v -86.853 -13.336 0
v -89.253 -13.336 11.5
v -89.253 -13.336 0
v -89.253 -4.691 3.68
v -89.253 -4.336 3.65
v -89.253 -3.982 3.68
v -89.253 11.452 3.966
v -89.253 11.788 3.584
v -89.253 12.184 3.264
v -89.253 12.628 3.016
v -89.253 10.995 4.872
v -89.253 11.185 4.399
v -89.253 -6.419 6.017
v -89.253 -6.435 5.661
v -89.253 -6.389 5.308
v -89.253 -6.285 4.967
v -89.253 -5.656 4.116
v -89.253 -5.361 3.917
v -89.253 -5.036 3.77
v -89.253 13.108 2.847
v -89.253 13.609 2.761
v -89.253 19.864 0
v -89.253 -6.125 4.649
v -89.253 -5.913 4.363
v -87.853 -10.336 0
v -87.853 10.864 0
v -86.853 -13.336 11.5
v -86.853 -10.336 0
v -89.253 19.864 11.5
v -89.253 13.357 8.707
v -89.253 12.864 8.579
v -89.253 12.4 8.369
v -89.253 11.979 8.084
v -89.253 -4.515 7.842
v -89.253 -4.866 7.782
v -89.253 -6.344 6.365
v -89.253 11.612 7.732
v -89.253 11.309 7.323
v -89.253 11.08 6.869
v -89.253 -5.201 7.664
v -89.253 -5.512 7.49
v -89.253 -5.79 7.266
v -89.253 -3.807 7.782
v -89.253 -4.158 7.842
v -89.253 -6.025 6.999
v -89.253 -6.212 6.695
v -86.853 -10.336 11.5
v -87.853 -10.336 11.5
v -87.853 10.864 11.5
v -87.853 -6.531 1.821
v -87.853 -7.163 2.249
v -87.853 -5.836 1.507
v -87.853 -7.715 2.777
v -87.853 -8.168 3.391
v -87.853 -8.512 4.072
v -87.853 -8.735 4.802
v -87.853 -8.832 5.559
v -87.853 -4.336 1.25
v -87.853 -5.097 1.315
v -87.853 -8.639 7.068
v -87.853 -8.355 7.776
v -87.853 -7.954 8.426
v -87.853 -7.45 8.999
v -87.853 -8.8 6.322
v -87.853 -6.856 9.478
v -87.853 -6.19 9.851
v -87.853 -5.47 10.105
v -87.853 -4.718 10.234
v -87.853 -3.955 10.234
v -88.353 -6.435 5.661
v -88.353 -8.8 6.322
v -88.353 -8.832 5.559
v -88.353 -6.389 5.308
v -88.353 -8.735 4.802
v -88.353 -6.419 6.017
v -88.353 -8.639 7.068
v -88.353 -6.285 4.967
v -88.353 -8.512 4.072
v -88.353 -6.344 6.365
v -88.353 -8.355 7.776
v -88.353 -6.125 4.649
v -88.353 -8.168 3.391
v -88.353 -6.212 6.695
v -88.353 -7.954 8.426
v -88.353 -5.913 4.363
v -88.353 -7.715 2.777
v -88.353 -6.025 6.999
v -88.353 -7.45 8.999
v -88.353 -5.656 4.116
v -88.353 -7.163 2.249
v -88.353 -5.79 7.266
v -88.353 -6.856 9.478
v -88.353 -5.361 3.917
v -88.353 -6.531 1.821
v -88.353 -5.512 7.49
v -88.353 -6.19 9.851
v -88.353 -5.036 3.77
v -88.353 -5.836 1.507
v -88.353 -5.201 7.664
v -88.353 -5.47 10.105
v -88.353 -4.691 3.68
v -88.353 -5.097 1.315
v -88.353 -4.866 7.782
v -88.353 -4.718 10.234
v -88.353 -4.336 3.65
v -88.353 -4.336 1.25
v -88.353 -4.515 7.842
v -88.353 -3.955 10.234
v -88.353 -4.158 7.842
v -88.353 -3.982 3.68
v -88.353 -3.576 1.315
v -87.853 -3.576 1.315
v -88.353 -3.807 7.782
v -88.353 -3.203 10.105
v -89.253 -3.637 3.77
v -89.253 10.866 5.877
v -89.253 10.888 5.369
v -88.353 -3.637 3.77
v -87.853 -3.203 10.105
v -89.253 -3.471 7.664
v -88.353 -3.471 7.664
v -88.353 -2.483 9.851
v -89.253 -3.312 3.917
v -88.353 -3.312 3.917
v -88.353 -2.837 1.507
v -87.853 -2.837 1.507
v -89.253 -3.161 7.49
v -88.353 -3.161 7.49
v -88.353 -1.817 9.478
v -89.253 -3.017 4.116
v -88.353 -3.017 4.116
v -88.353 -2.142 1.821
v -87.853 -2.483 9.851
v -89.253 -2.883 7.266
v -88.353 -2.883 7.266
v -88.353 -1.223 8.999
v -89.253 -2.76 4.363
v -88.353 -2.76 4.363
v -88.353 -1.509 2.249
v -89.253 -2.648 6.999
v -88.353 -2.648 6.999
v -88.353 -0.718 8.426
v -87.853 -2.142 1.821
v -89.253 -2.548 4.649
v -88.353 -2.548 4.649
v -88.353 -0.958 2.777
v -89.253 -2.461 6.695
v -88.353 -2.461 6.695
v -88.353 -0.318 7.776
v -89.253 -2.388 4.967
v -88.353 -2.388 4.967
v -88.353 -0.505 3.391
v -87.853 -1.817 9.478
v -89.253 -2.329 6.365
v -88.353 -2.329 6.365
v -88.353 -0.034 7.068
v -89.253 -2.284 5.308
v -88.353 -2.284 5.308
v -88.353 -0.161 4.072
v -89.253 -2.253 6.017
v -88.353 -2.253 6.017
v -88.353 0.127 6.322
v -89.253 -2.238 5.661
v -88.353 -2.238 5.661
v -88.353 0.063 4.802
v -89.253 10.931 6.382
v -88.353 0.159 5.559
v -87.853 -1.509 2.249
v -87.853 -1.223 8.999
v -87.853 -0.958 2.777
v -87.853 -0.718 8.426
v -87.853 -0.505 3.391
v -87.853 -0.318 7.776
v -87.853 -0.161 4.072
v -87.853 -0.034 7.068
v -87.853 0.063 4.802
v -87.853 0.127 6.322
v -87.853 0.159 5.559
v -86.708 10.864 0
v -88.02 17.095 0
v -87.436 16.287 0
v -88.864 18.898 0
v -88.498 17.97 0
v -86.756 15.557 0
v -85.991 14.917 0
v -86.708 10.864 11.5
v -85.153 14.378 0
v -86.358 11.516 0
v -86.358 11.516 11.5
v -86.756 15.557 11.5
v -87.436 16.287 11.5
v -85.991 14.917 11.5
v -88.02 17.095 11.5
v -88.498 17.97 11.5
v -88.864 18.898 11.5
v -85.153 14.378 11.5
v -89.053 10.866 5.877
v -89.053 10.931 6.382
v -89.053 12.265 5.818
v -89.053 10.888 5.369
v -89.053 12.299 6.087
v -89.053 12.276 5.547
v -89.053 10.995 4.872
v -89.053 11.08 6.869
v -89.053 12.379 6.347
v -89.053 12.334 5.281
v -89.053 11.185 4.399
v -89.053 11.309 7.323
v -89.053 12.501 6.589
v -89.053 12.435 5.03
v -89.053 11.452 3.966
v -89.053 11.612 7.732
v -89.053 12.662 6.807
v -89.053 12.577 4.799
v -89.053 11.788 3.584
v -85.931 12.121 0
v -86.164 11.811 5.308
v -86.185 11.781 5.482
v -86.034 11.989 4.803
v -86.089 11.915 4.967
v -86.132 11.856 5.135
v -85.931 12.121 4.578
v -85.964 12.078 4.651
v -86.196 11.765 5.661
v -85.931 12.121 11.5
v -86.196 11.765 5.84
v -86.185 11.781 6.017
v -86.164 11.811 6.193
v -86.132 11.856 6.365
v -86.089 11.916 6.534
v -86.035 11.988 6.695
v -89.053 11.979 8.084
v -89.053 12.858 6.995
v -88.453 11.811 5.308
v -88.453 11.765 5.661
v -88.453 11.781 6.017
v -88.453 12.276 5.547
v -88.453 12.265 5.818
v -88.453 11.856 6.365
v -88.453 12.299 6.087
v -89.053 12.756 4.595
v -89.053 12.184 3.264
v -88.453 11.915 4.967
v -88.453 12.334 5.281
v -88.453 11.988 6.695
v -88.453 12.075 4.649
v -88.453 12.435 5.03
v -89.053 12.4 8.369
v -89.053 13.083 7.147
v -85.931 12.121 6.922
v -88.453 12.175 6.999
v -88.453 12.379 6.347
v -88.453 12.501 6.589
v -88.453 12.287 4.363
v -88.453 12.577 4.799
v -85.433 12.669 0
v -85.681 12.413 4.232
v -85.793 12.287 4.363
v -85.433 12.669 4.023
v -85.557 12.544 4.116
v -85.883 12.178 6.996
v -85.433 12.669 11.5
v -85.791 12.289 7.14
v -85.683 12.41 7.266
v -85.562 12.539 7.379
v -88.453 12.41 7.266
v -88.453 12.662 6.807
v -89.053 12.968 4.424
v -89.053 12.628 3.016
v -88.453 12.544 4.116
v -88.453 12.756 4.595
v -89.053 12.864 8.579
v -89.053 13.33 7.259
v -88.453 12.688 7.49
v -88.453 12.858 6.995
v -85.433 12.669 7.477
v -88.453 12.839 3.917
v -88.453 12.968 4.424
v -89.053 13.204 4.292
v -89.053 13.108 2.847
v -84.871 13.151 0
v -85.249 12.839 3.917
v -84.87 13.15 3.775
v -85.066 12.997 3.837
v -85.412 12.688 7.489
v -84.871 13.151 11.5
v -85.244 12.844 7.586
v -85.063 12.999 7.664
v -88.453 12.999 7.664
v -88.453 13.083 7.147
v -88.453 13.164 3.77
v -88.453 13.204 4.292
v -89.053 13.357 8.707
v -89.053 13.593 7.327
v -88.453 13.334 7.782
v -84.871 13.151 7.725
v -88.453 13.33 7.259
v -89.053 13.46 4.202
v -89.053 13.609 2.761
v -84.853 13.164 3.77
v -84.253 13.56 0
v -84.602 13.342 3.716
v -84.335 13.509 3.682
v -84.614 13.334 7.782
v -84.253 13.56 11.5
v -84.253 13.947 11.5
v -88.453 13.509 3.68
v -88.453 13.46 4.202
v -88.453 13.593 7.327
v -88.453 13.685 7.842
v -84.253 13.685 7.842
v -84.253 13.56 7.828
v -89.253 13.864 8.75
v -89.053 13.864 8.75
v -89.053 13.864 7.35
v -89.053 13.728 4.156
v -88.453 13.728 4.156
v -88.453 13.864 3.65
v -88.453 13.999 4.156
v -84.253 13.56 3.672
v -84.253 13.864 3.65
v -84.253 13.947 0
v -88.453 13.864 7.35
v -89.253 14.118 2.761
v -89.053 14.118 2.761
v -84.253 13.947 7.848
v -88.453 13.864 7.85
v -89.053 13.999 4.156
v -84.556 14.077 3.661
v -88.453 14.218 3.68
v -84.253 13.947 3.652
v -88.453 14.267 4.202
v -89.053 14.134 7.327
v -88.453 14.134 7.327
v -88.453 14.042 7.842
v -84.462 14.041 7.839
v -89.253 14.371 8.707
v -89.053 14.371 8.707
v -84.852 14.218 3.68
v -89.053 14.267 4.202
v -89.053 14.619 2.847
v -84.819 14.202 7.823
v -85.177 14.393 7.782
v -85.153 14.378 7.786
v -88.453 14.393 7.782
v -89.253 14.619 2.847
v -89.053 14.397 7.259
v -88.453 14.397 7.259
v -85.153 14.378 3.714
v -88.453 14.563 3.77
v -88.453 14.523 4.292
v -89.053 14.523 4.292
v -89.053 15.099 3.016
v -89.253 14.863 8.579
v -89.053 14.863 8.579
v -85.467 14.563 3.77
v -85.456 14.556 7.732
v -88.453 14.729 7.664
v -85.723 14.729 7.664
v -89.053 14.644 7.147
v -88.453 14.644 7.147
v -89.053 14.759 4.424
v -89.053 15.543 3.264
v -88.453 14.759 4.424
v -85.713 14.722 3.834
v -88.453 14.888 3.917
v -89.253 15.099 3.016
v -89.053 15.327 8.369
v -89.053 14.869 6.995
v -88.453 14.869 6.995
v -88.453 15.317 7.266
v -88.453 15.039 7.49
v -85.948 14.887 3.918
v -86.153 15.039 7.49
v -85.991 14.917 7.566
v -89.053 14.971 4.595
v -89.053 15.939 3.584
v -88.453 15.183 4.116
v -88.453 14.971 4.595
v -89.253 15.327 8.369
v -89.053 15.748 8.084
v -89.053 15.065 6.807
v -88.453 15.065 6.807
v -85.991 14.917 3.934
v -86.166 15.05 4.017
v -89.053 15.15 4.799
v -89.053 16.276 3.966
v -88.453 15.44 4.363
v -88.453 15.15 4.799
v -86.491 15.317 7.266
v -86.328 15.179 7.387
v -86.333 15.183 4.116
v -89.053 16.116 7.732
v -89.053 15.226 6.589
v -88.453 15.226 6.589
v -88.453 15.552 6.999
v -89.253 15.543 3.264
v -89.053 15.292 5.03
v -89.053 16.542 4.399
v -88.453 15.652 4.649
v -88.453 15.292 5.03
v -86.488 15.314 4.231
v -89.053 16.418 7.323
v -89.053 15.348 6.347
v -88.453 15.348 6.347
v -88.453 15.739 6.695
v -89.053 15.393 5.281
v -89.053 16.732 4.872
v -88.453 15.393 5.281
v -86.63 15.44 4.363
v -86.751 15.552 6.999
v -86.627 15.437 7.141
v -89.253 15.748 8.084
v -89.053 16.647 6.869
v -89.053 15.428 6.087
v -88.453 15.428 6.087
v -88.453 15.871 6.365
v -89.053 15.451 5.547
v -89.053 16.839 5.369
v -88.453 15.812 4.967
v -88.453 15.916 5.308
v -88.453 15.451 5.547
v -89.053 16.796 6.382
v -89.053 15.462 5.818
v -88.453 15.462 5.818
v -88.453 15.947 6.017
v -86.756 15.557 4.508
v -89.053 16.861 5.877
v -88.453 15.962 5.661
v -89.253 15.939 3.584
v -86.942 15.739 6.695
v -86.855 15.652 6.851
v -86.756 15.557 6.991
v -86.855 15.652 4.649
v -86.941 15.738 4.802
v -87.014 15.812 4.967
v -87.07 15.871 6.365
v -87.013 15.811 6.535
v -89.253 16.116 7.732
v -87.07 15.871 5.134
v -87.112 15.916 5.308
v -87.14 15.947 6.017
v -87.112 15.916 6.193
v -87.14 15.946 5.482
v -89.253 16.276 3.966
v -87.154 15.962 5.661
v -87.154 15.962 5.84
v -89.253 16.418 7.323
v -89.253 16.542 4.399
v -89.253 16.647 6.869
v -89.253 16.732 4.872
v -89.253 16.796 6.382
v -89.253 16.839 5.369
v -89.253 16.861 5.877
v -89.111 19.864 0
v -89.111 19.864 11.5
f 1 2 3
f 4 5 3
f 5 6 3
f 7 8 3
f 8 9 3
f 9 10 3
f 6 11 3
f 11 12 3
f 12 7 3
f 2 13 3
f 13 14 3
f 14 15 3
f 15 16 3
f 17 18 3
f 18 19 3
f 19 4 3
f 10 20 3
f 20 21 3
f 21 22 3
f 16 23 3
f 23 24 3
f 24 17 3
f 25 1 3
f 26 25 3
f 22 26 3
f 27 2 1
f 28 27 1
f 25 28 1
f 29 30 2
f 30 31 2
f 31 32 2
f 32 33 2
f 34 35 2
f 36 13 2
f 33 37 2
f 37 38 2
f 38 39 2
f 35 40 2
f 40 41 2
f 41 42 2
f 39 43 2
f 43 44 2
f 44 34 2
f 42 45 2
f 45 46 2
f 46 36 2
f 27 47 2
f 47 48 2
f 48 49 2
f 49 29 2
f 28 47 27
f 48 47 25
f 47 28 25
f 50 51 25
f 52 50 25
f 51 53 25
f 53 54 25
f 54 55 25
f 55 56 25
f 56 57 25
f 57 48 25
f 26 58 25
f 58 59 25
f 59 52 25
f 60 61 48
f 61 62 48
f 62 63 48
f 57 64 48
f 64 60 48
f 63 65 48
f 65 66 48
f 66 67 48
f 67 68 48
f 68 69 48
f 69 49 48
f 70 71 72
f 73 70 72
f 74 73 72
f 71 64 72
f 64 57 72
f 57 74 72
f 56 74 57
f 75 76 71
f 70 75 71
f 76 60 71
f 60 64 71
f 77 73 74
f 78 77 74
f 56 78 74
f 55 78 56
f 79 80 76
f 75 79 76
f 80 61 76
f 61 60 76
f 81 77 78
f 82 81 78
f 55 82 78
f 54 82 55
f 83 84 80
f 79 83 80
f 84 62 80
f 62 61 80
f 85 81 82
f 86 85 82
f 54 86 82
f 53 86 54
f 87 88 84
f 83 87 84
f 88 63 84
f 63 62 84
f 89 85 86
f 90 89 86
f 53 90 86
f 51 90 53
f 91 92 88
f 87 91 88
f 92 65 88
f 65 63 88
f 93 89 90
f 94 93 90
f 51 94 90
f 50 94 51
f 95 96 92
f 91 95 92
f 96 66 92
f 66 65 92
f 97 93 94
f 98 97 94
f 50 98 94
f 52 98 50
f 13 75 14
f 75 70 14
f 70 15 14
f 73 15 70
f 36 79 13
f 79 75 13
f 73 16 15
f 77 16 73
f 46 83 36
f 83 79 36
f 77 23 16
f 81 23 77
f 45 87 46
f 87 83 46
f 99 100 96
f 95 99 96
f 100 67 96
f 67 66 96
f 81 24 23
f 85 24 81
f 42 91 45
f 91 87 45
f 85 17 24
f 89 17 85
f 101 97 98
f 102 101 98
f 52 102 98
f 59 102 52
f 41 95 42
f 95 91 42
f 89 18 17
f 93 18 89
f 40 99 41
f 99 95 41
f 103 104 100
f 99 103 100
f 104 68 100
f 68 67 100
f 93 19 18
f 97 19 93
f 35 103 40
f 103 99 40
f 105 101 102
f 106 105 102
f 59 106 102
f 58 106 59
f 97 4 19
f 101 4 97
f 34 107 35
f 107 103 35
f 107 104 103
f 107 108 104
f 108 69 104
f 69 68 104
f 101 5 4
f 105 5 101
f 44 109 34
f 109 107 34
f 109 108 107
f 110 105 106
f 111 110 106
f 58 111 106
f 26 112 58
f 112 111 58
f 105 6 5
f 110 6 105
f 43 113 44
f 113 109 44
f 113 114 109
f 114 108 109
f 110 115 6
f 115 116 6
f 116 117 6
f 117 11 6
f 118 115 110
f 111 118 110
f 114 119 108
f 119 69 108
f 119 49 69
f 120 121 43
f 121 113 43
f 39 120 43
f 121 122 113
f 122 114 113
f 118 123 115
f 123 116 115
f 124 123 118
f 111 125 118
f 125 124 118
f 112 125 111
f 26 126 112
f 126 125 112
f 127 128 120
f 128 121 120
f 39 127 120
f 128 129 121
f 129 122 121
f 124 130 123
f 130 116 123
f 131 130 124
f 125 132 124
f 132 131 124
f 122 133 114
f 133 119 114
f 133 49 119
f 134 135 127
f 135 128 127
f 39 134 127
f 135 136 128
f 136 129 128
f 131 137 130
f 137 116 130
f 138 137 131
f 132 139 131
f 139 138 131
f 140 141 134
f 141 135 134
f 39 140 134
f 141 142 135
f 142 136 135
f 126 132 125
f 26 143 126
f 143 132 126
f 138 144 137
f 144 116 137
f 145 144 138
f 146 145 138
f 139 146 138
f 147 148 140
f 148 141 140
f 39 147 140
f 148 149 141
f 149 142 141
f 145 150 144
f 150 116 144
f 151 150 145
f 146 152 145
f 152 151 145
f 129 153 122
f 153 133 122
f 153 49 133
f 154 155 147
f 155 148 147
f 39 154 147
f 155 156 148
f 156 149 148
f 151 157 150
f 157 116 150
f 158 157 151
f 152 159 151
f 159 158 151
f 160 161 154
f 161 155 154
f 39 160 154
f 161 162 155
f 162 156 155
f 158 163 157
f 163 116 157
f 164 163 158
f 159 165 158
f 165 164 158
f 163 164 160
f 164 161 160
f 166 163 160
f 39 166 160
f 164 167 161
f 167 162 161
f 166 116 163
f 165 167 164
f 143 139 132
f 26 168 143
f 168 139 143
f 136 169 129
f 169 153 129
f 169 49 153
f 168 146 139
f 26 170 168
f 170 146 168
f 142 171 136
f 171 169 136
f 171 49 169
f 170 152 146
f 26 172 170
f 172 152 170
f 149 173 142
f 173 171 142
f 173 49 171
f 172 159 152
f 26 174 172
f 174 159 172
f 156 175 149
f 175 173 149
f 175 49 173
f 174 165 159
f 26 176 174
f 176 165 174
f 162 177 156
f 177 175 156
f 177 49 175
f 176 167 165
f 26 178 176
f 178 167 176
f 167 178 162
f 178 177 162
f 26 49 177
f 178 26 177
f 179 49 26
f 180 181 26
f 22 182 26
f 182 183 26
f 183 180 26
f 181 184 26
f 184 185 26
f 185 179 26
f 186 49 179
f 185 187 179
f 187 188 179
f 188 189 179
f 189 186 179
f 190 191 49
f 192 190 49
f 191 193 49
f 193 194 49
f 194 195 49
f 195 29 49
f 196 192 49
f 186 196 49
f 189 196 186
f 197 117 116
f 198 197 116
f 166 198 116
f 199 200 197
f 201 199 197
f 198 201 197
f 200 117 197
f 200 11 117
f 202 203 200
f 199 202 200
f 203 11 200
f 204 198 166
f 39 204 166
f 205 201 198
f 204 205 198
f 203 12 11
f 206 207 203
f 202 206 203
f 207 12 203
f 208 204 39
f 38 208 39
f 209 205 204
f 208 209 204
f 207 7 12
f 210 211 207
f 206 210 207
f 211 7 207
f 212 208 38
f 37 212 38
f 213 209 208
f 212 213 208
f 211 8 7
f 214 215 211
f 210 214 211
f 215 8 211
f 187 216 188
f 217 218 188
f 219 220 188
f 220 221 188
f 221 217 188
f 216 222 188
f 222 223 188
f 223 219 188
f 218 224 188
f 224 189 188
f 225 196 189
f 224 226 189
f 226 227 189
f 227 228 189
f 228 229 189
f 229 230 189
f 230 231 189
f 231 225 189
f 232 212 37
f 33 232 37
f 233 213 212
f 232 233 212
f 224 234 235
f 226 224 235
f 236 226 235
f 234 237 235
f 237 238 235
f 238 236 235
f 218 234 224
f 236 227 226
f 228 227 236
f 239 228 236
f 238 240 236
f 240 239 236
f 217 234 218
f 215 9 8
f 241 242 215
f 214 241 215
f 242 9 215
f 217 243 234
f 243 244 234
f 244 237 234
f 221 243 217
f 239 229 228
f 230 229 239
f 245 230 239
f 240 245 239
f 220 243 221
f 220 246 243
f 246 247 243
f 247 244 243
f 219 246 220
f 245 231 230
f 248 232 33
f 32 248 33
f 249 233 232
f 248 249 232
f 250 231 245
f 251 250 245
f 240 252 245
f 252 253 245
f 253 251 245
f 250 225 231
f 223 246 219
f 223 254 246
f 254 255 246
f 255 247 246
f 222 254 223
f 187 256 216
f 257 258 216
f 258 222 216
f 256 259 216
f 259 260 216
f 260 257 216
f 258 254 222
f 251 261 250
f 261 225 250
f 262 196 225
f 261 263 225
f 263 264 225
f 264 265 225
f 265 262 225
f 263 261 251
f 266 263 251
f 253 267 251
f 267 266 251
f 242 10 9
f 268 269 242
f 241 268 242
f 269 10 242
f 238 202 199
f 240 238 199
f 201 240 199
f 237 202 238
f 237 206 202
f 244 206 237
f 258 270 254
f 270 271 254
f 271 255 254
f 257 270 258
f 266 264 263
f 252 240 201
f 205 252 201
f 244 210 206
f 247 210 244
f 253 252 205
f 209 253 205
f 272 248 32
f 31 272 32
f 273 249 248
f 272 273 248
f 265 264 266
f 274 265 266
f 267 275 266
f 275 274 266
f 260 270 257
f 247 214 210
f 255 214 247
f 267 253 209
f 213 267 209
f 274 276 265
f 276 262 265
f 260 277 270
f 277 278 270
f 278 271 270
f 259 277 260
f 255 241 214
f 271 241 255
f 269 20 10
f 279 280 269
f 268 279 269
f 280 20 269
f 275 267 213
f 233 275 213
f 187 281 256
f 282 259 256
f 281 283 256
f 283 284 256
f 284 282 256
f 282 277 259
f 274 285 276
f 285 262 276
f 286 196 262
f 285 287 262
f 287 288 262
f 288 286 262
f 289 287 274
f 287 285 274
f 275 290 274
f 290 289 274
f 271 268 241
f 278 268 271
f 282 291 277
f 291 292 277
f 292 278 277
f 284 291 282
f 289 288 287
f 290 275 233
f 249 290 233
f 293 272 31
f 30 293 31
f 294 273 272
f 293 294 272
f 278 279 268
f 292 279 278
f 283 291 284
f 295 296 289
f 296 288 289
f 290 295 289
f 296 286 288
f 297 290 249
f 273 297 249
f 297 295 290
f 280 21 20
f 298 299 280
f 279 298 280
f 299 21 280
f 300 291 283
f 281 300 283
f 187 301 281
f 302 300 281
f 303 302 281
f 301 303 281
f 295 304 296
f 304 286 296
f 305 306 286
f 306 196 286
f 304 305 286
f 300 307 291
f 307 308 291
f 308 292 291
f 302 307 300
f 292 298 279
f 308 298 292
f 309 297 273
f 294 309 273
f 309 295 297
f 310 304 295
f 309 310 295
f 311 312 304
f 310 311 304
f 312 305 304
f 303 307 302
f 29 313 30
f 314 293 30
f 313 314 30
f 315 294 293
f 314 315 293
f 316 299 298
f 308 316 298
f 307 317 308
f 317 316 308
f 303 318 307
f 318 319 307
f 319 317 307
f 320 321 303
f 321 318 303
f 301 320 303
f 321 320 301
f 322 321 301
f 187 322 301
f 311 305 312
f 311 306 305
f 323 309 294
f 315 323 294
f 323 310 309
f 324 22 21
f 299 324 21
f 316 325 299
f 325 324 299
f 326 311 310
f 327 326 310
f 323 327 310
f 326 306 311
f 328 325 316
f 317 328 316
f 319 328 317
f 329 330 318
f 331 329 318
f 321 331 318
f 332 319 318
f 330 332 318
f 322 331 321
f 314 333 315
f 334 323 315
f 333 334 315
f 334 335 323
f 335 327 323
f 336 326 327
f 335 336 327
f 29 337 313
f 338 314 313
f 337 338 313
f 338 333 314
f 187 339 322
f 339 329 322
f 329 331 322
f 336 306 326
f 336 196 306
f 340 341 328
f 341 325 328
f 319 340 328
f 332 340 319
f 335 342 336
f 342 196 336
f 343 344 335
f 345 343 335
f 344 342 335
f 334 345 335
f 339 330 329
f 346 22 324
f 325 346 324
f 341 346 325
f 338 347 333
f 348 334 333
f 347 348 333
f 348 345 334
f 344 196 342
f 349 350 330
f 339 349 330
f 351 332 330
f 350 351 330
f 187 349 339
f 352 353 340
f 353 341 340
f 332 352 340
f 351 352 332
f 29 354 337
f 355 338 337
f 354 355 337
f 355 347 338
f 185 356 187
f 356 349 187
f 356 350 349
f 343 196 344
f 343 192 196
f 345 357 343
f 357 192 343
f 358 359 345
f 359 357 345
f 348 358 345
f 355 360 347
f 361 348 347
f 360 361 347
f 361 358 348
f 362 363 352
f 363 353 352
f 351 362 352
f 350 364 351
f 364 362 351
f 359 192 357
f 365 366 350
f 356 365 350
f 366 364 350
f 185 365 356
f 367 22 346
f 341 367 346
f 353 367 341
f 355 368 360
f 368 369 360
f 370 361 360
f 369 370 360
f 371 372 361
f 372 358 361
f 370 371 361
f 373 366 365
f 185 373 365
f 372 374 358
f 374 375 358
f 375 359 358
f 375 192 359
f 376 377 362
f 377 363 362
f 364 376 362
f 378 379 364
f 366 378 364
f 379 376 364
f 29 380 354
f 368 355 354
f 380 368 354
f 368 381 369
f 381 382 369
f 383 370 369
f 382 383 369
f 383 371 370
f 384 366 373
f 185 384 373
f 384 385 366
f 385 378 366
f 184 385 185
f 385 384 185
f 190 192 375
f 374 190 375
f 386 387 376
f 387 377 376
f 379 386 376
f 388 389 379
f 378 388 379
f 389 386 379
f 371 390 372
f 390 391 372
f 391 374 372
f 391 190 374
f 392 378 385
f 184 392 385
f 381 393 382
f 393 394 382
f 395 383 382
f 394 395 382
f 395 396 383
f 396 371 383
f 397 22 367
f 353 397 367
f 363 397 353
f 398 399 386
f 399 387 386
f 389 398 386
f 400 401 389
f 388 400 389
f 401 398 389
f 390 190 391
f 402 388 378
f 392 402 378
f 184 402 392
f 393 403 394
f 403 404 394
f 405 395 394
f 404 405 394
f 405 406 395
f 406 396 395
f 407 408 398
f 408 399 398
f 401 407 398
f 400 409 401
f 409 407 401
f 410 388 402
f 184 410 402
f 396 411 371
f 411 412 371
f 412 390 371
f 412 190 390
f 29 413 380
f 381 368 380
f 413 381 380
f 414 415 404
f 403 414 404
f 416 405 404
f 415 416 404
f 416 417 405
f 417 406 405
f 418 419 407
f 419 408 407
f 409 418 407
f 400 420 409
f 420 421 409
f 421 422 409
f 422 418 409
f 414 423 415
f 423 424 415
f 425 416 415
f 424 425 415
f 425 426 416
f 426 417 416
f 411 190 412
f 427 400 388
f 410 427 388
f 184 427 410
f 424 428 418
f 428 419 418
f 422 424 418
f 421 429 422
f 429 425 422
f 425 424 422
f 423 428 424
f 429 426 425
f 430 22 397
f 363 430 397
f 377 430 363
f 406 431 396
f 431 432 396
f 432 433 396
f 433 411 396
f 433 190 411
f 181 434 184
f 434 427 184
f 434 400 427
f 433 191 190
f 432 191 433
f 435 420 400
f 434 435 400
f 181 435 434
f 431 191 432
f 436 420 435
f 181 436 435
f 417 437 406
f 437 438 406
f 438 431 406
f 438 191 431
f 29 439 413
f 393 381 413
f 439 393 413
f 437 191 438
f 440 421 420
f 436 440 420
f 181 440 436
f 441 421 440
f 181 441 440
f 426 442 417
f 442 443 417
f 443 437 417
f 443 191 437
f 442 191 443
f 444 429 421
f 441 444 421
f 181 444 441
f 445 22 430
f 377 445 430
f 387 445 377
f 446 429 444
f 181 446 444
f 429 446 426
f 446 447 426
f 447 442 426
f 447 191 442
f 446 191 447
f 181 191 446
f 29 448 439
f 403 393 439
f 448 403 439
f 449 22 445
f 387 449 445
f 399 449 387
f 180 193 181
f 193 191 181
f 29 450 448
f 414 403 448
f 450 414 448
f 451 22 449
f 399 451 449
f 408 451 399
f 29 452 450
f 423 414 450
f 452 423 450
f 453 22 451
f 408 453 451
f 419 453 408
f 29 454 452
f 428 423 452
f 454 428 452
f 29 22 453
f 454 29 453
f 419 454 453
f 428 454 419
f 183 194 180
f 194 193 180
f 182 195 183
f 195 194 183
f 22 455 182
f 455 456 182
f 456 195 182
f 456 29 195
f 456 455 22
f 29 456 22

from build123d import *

# Parameters (mm, degrees)
SALIENTE_EXTRUIR1_DEPTH = 11.5
CORTAR_EXTRUIR1_START   = -5
CROQUIS2_R              = 2.1
CORTAR_EXTRUIR1_DEPTH   = 5
CROQUIS3_R              = 4.5
CORTAR_EXTRUIR2_DEPTH   = 0.5
CROQUIS4_R              = 3
CORTAR_EXTRUIR3_DEPTH   = 0.2
CROQUIS5_R              = 2.1
CROQUIS5_R_2            = 1.6
SALIENTE_EXTRUIR2_DEPTH = 0.6
CORTAR_EXTRUIR5_DEPTH   = 11.5


with BuildPart() as part:
    # Croquis1 → Saliente-Extruir1 (new body)
    with BuildSketch(Plane.XY):
        Polygon((-89.253382482, -13.336480186), (-89.253382482, 19.863519814), (-87.853382482, 19.863519814), (-87.853382482, 16.863519814), (-84.253382482, 16.863519814), (-84.253382482, 10.863519814), (-87.853382482, 10.863519814), (-87.853382482, -10.336480186), (-86.853382482, -10.336480186), (-86.853382482, -13.336480186), align=None)
    extrude(amount=SALIENTE_EXTRUIR1_DEPTH)

    # Croquis2 → Cortar-Extruir1 (cut)
    with BuildSketch(Plane(origin=(-84.253382482, 0, 0), x_dir=(0, 0, -1), z_dir=(1, 0, 0)).offset(CORTAR_EXTRUIR1_START)):
        with Locations((-5.75, 13.863519814)):
            Circle(CROQUIS2_R)
        with Locations((-5.75, -4.336480186)):
            Circle(CROQUIS2_R)
    extrude(amount=CORTAR_EXTRUIR1_DEPTH, mode=Mode.SUBTRACT)

    # Croquis3 → Cortar-Extruir2 (cut)
    with BuildSketch(Plane(origin=(-87.853382482, 0, 0), x_dir=(0, 0, -1), z_dir=(1, 0, 0))):
        with Locations((-5.75, -4.336480186)):
            Circle(CROQUIS3_R)
    extrude(amount=-CORTAR_EXTRUIR2_DEPTH, mode=Mode.SUBTRACT)

    # Croquis4 → Cortar-Extruir3 (cut)
    with BuildSketch(Plane.ZY.offset(89.253382482)):
        with Locations((5.75, 13.863519814)):
            Circle(CROQUIS4_R)
    extrude(amount=-CORTAR_EXTRUIR3_DEPTH, mode=Mode.SUBTRACT)

    # Croquis5 → Saliente-Extruir2 (add)
    with BuildSketch(Plane.ZY.offset(89.053382482)):
        with Locations((5.75, 13.863519814)):
            Circle(CROQUIS5_R)
        with Locations((5.75, 13.863519814)):
            Circle(CROQUIS5_R_2, mode=Mode.SUBTRACT)
    extrude(amount=-SALIENTE_EXTRUIR2_DEPTH)

    # Croquis6 → Cortar-Extruir5 (cut)
    with BuildSketch(Plane.XY.offset(11.5)):
        with BuildLine():
            ThreePointArc((-78.686236851, 13.786596737), (-81.253382482, 29.363519814), (-83.820528112, 13.786596737))
            ThreePointArc((-83.820528112, 13.786596737), (-81.253382482, 2.363519814), (-78.686236851, 13.786596737))
        make_face()
    extrude(amount=-CORTAR_EXTRUIR5_DEPTH, mode=Mode.SUBTRACT)


solid = part.part
